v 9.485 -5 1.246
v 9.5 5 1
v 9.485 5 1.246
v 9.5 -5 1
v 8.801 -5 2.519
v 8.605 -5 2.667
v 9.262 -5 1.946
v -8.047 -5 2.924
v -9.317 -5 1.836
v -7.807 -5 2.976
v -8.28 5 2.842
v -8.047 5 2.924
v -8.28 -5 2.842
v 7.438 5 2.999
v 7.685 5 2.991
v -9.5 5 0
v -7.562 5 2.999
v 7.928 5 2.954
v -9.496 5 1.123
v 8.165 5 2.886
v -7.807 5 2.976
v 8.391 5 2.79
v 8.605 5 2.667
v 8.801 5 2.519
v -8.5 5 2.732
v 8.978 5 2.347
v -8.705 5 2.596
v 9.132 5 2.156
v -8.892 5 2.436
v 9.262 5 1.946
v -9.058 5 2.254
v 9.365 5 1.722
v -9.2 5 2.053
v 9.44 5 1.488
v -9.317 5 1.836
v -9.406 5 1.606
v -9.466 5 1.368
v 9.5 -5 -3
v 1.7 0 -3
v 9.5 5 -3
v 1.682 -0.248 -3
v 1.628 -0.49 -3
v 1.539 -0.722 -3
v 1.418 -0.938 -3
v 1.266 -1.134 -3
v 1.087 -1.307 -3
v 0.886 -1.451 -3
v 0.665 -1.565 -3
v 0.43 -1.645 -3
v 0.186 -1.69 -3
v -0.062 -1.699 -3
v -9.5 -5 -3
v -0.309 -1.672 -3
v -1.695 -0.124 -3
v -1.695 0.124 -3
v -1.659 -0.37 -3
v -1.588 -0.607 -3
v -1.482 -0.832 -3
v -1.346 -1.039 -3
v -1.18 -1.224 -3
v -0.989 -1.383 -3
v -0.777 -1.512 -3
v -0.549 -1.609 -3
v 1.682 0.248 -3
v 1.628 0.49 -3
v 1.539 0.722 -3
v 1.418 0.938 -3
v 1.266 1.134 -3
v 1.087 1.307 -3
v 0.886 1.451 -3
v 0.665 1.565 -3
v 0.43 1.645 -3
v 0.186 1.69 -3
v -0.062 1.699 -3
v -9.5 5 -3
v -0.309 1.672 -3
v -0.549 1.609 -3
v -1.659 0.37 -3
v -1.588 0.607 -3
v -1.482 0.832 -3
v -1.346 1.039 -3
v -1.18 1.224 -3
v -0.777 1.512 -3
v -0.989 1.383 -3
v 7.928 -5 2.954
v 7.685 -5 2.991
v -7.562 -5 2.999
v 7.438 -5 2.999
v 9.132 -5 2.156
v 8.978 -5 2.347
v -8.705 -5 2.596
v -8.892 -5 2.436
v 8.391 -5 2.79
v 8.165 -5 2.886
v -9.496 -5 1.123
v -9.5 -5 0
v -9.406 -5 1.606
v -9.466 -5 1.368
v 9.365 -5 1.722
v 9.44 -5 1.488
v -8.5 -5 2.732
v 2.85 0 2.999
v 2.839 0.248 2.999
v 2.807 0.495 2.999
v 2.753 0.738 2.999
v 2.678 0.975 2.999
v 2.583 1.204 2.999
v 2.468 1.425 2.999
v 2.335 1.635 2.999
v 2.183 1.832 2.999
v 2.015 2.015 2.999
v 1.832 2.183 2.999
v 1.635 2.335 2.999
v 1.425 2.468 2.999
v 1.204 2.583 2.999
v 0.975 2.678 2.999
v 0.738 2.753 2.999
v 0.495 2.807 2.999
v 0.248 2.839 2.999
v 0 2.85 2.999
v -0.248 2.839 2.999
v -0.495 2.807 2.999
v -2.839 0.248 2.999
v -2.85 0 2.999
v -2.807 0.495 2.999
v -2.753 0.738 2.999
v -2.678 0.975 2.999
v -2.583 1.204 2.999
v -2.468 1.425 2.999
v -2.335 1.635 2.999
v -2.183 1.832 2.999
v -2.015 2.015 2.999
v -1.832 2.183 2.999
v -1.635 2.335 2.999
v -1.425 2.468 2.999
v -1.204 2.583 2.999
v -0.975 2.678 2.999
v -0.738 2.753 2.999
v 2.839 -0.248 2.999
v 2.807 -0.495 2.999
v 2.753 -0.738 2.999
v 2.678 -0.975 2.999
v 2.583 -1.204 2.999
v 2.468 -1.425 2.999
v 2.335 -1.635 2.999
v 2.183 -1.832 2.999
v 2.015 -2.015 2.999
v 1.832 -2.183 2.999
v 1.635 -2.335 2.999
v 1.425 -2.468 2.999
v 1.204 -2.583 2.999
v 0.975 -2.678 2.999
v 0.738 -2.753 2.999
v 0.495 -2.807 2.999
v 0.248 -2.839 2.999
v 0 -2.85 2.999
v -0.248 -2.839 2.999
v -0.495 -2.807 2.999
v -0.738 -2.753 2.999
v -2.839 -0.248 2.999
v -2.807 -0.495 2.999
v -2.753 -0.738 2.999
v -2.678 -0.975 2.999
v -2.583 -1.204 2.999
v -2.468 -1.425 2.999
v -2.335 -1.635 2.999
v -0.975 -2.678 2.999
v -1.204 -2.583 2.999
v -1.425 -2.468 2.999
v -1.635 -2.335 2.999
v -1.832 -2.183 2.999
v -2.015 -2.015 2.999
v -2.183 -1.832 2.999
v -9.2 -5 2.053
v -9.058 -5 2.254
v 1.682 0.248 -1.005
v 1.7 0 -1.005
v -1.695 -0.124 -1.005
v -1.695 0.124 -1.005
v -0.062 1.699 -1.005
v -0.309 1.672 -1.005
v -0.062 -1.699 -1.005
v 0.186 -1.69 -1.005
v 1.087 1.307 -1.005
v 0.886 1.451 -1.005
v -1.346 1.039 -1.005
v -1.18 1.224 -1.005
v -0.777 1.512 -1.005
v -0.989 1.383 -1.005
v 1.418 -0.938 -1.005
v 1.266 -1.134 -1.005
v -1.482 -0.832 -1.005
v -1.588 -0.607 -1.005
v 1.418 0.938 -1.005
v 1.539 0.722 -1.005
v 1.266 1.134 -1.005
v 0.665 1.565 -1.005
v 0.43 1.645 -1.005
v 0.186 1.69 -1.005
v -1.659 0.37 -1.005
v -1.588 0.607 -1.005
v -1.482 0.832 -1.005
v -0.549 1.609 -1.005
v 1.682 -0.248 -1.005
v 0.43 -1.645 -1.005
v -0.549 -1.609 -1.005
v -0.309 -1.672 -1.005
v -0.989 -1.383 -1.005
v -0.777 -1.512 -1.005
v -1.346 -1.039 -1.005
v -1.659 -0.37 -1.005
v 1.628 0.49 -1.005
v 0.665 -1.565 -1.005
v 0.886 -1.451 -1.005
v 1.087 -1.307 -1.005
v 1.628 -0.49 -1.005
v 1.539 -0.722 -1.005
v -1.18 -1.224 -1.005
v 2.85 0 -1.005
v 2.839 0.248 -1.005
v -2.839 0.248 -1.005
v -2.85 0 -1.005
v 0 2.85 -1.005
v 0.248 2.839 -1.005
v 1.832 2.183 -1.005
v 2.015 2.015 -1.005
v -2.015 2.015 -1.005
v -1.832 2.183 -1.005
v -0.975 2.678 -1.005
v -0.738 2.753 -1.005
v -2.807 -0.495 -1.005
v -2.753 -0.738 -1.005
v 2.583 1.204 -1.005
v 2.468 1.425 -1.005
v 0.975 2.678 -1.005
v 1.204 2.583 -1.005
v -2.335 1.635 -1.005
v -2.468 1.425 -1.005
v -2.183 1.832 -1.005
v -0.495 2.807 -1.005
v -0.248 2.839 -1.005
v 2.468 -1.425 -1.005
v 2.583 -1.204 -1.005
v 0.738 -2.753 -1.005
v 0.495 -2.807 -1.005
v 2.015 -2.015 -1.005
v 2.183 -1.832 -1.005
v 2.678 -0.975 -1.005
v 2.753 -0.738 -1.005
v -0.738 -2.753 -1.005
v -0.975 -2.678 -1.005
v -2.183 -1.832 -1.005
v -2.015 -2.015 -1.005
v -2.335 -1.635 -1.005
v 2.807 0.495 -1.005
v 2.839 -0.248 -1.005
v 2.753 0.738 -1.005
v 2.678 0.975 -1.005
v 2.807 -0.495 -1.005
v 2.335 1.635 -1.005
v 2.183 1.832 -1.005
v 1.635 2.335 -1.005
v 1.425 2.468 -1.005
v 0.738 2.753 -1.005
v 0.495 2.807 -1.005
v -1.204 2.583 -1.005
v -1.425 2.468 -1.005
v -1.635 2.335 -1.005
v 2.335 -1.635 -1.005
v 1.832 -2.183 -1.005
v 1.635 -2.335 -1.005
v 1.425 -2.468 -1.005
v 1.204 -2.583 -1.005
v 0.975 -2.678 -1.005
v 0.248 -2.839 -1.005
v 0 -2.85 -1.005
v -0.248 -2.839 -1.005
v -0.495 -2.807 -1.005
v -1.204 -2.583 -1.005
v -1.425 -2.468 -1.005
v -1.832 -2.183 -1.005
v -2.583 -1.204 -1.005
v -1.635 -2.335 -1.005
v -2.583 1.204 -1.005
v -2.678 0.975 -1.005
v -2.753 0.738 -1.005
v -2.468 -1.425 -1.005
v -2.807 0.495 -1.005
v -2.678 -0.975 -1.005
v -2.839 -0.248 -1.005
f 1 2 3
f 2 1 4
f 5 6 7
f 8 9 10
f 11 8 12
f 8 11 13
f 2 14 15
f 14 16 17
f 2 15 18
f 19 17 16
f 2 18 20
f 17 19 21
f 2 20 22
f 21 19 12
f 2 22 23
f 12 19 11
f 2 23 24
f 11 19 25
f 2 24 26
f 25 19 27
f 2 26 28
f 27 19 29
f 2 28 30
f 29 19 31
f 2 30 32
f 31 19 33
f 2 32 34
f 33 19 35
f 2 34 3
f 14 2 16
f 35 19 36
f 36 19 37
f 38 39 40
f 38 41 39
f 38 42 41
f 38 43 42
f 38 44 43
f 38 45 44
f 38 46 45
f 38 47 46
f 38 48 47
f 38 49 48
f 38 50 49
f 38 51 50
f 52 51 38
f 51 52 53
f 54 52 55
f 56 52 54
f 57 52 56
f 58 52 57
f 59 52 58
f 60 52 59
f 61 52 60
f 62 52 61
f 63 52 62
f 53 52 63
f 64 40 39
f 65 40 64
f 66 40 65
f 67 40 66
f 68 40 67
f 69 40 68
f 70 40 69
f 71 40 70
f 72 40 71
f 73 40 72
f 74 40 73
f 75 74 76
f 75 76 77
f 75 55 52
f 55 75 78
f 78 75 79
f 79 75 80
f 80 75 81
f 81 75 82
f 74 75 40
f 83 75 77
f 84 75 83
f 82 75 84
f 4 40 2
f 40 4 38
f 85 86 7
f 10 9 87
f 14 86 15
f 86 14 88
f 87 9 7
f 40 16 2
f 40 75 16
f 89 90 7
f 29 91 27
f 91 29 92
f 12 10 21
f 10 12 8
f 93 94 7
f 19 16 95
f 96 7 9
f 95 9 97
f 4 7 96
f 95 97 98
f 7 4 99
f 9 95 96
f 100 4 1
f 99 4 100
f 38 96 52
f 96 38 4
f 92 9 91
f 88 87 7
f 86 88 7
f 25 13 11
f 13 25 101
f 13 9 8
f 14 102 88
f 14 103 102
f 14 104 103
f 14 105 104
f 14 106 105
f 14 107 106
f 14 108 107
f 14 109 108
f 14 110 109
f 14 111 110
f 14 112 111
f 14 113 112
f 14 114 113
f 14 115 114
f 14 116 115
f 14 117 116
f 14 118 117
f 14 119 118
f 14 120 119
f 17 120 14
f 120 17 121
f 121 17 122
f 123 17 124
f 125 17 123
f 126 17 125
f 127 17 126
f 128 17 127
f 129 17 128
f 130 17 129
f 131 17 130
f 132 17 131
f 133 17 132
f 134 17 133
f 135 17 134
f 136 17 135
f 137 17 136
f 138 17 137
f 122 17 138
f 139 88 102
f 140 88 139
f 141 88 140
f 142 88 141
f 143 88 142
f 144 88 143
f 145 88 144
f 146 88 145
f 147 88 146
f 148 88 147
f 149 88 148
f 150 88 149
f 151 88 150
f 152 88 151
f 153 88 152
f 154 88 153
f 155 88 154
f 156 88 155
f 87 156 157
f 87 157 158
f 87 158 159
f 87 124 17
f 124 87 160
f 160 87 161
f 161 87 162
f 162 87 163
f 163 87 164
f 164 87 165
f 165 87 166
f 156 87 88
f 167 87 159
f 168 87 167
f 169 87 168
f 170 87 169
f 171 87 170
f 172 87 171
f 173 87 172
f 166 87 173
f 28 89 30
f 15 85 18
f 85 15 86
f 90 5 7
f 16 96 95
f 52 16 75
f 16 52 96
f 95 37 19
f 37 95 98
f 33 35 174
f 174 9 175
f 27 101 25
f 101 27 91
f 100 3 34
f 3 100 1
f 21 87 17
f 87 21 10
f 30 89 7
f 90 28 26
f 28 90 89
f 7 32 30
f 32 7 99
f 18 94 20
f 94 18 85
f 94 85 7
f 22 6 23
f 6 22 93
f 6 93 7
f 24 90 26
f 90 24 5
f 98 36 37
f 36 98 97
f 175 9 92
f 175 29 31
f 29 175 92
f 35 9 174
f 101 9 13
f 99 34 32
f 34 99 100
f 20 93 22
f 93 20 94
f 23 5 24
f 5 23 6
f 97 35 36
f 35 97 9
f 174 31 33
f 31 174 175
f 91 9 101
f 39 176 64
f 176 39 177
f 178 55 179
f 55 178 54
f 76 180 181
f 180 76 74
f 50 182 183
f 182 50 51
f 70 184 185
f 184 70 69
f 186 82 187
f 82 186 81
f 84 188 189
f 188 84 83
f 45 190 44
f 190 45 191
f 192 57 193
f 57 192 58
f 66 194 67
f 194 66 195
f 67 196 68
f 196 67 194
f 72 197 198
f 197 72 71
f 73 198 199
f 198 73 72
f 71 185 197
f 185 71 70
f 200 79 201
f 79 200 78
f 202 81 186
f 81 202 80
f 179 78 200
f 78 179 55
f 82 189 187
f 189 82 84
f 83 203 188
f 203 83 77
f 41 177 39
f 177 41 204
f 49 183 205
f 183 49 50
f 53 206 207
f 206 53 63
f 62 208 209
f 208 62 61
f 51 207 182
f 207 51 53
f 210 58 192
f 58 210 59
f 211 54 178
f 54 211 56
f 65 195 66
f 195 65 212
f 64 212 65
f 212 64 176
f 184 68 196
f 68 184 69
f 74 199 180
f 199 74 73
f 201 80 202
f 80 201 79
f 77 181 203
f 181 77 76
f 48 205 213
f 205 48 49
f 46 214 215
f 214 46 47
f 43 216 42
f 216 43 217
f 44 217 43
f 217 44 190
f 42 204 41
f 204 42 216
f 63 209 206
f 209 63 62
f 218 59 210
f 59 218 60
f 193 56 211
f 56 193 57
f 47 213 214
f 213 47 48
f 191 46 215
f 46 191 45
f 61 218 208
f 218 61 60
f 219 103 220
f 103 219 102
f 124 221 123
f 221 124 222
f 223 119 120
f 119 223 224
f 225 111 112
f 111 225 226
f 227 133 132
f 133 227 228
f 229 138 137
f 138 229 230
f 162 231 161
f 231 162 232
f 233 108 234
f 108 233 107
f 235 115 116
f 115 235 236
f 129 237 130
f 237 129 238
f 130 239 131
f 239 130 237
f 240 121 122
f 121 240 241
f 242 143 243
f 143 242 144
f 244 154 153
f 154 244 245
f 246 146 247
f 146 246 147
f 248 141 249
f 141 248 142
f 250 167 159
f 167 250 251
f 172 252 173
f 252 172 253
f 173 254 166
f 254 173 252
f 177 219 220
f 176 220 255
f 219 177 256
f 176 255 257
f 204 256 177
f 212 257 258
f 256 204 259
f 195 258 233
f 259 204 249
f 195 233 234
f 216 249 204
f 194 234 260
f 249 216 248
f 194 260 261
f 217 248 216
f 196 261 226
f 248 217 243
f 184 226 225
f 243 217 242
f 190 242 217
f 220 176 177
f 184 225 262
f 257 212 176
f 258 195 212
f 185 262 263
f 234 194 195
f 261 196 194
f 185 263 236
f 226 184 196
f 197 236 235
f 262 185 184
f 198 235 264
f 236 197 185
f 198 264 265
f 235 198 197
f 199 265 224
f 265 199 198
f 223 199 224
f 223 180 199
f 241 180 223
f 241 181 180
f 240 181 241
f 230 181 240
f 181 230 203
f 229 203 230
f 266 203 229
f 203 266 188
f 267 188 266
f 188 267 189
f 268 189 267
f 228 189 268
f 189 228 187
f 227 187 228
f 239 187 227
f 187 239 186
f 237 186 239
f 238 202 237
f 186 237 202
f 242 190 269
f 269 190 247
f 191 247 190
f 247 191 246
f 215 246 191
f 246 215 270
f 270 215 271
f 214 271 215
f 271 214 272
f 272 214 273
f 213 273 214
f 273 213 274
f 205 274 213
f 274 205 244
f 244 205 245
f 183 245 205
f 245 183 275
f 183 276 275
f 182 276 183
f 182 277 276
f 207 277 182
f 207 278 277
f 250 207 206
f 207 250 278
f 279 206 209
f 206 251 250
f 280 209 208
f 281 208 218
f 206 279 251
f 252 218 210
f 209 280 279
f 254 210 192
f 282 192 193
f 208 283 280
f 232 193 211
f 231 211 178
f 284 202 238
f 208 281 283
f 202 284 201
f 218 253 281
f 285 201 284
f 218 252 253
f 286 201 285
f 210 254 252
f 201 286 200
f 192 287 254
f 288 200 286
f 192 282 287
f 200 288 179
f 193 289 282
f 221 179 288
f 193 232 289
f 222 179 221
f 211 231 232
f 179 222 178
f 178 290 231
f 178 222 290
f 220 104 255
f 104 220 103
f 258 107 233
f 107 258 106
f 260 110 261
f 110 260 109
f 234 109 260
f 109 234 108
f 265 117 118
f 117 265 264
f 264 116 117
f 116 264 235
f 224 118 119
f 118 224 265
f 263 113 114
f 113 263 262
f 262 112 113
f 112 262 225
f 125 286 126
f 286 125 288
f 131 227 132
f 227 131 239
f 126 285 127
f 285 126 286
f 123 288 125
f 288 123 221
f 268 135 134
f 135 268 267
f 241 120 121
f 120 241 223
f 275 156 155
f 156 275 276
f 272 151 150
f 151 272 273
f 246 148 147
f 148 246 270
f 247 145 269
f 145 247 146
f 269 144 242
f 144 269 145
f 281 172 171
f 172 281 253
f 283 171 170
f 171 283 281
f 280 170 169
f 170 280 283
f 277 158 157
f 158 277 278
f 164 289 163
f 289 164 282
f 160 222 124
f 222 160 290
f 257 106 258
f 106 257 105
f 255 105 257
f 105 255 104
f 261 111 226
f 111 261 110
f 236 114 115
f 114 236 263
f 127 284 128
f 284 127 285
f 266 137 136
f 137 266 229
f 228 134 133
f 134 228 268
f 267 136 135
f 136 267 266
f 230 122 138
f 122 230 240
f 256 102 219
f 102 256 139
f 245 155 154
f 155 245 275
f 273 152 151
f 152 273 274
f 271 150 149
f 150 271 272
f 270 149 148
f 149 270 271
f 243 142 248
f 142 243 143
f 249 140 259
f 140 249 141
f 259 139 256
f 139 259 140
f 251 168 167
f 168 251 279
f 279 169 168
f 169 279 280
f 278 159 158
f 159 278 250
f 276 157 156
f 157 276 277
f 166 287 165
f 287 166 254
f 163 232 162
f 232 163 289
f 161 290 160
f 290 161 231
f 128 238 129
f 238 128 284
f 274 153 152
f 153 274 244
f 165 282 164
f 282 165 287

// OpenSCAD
include <cloverplus_v3_utils.scad>;
//---------------------------------------------------------------------------------------------------- 
// CloverPlus v3 railstop by pbmax (mpeterson333/@/gmail.com)
//---------------------------------------------------------------------------------------------------- 
// This part prevents the rail carriage from slding off of the linear rails - 6 are needed
//---------------------------------------------------------------------------------------------------- 

$fs = 0.25;
$fa = 0.25;

cloverplus_v3_railstop();

module cloverplus_v3_railstop()
{
  nutplate_hole_spacing = 10;
  rail_to_end_spacing = 5;
  length = nutplate_hole_spacing;
  width = railcar_w - 1;
  thick = rail_t - 0.5;
  corner_r = 2;
  // For M3 x 4mm screws
  m3_socket_depth = thick - 2;

  difference()
  {
    rotate([90,0,0])
      // Only one side should be rounded - extrusion side should be flat
      hull()
      {
        smooth_block(width, thick, length, corner_r);
        translate([0, -thick*0.25, 0])
          cube([width, thick*0.5, length], center=true);
      }

    cylinder(h=thick+ff, d=m3_hole_d, center=true);
    translate([0,0, thick*0.5-m3_socket_depth*0.5])
      cylinder(h=m3_socket_depth+ff, d=m3_socket_inset_d, center=true);
  }
  
}
